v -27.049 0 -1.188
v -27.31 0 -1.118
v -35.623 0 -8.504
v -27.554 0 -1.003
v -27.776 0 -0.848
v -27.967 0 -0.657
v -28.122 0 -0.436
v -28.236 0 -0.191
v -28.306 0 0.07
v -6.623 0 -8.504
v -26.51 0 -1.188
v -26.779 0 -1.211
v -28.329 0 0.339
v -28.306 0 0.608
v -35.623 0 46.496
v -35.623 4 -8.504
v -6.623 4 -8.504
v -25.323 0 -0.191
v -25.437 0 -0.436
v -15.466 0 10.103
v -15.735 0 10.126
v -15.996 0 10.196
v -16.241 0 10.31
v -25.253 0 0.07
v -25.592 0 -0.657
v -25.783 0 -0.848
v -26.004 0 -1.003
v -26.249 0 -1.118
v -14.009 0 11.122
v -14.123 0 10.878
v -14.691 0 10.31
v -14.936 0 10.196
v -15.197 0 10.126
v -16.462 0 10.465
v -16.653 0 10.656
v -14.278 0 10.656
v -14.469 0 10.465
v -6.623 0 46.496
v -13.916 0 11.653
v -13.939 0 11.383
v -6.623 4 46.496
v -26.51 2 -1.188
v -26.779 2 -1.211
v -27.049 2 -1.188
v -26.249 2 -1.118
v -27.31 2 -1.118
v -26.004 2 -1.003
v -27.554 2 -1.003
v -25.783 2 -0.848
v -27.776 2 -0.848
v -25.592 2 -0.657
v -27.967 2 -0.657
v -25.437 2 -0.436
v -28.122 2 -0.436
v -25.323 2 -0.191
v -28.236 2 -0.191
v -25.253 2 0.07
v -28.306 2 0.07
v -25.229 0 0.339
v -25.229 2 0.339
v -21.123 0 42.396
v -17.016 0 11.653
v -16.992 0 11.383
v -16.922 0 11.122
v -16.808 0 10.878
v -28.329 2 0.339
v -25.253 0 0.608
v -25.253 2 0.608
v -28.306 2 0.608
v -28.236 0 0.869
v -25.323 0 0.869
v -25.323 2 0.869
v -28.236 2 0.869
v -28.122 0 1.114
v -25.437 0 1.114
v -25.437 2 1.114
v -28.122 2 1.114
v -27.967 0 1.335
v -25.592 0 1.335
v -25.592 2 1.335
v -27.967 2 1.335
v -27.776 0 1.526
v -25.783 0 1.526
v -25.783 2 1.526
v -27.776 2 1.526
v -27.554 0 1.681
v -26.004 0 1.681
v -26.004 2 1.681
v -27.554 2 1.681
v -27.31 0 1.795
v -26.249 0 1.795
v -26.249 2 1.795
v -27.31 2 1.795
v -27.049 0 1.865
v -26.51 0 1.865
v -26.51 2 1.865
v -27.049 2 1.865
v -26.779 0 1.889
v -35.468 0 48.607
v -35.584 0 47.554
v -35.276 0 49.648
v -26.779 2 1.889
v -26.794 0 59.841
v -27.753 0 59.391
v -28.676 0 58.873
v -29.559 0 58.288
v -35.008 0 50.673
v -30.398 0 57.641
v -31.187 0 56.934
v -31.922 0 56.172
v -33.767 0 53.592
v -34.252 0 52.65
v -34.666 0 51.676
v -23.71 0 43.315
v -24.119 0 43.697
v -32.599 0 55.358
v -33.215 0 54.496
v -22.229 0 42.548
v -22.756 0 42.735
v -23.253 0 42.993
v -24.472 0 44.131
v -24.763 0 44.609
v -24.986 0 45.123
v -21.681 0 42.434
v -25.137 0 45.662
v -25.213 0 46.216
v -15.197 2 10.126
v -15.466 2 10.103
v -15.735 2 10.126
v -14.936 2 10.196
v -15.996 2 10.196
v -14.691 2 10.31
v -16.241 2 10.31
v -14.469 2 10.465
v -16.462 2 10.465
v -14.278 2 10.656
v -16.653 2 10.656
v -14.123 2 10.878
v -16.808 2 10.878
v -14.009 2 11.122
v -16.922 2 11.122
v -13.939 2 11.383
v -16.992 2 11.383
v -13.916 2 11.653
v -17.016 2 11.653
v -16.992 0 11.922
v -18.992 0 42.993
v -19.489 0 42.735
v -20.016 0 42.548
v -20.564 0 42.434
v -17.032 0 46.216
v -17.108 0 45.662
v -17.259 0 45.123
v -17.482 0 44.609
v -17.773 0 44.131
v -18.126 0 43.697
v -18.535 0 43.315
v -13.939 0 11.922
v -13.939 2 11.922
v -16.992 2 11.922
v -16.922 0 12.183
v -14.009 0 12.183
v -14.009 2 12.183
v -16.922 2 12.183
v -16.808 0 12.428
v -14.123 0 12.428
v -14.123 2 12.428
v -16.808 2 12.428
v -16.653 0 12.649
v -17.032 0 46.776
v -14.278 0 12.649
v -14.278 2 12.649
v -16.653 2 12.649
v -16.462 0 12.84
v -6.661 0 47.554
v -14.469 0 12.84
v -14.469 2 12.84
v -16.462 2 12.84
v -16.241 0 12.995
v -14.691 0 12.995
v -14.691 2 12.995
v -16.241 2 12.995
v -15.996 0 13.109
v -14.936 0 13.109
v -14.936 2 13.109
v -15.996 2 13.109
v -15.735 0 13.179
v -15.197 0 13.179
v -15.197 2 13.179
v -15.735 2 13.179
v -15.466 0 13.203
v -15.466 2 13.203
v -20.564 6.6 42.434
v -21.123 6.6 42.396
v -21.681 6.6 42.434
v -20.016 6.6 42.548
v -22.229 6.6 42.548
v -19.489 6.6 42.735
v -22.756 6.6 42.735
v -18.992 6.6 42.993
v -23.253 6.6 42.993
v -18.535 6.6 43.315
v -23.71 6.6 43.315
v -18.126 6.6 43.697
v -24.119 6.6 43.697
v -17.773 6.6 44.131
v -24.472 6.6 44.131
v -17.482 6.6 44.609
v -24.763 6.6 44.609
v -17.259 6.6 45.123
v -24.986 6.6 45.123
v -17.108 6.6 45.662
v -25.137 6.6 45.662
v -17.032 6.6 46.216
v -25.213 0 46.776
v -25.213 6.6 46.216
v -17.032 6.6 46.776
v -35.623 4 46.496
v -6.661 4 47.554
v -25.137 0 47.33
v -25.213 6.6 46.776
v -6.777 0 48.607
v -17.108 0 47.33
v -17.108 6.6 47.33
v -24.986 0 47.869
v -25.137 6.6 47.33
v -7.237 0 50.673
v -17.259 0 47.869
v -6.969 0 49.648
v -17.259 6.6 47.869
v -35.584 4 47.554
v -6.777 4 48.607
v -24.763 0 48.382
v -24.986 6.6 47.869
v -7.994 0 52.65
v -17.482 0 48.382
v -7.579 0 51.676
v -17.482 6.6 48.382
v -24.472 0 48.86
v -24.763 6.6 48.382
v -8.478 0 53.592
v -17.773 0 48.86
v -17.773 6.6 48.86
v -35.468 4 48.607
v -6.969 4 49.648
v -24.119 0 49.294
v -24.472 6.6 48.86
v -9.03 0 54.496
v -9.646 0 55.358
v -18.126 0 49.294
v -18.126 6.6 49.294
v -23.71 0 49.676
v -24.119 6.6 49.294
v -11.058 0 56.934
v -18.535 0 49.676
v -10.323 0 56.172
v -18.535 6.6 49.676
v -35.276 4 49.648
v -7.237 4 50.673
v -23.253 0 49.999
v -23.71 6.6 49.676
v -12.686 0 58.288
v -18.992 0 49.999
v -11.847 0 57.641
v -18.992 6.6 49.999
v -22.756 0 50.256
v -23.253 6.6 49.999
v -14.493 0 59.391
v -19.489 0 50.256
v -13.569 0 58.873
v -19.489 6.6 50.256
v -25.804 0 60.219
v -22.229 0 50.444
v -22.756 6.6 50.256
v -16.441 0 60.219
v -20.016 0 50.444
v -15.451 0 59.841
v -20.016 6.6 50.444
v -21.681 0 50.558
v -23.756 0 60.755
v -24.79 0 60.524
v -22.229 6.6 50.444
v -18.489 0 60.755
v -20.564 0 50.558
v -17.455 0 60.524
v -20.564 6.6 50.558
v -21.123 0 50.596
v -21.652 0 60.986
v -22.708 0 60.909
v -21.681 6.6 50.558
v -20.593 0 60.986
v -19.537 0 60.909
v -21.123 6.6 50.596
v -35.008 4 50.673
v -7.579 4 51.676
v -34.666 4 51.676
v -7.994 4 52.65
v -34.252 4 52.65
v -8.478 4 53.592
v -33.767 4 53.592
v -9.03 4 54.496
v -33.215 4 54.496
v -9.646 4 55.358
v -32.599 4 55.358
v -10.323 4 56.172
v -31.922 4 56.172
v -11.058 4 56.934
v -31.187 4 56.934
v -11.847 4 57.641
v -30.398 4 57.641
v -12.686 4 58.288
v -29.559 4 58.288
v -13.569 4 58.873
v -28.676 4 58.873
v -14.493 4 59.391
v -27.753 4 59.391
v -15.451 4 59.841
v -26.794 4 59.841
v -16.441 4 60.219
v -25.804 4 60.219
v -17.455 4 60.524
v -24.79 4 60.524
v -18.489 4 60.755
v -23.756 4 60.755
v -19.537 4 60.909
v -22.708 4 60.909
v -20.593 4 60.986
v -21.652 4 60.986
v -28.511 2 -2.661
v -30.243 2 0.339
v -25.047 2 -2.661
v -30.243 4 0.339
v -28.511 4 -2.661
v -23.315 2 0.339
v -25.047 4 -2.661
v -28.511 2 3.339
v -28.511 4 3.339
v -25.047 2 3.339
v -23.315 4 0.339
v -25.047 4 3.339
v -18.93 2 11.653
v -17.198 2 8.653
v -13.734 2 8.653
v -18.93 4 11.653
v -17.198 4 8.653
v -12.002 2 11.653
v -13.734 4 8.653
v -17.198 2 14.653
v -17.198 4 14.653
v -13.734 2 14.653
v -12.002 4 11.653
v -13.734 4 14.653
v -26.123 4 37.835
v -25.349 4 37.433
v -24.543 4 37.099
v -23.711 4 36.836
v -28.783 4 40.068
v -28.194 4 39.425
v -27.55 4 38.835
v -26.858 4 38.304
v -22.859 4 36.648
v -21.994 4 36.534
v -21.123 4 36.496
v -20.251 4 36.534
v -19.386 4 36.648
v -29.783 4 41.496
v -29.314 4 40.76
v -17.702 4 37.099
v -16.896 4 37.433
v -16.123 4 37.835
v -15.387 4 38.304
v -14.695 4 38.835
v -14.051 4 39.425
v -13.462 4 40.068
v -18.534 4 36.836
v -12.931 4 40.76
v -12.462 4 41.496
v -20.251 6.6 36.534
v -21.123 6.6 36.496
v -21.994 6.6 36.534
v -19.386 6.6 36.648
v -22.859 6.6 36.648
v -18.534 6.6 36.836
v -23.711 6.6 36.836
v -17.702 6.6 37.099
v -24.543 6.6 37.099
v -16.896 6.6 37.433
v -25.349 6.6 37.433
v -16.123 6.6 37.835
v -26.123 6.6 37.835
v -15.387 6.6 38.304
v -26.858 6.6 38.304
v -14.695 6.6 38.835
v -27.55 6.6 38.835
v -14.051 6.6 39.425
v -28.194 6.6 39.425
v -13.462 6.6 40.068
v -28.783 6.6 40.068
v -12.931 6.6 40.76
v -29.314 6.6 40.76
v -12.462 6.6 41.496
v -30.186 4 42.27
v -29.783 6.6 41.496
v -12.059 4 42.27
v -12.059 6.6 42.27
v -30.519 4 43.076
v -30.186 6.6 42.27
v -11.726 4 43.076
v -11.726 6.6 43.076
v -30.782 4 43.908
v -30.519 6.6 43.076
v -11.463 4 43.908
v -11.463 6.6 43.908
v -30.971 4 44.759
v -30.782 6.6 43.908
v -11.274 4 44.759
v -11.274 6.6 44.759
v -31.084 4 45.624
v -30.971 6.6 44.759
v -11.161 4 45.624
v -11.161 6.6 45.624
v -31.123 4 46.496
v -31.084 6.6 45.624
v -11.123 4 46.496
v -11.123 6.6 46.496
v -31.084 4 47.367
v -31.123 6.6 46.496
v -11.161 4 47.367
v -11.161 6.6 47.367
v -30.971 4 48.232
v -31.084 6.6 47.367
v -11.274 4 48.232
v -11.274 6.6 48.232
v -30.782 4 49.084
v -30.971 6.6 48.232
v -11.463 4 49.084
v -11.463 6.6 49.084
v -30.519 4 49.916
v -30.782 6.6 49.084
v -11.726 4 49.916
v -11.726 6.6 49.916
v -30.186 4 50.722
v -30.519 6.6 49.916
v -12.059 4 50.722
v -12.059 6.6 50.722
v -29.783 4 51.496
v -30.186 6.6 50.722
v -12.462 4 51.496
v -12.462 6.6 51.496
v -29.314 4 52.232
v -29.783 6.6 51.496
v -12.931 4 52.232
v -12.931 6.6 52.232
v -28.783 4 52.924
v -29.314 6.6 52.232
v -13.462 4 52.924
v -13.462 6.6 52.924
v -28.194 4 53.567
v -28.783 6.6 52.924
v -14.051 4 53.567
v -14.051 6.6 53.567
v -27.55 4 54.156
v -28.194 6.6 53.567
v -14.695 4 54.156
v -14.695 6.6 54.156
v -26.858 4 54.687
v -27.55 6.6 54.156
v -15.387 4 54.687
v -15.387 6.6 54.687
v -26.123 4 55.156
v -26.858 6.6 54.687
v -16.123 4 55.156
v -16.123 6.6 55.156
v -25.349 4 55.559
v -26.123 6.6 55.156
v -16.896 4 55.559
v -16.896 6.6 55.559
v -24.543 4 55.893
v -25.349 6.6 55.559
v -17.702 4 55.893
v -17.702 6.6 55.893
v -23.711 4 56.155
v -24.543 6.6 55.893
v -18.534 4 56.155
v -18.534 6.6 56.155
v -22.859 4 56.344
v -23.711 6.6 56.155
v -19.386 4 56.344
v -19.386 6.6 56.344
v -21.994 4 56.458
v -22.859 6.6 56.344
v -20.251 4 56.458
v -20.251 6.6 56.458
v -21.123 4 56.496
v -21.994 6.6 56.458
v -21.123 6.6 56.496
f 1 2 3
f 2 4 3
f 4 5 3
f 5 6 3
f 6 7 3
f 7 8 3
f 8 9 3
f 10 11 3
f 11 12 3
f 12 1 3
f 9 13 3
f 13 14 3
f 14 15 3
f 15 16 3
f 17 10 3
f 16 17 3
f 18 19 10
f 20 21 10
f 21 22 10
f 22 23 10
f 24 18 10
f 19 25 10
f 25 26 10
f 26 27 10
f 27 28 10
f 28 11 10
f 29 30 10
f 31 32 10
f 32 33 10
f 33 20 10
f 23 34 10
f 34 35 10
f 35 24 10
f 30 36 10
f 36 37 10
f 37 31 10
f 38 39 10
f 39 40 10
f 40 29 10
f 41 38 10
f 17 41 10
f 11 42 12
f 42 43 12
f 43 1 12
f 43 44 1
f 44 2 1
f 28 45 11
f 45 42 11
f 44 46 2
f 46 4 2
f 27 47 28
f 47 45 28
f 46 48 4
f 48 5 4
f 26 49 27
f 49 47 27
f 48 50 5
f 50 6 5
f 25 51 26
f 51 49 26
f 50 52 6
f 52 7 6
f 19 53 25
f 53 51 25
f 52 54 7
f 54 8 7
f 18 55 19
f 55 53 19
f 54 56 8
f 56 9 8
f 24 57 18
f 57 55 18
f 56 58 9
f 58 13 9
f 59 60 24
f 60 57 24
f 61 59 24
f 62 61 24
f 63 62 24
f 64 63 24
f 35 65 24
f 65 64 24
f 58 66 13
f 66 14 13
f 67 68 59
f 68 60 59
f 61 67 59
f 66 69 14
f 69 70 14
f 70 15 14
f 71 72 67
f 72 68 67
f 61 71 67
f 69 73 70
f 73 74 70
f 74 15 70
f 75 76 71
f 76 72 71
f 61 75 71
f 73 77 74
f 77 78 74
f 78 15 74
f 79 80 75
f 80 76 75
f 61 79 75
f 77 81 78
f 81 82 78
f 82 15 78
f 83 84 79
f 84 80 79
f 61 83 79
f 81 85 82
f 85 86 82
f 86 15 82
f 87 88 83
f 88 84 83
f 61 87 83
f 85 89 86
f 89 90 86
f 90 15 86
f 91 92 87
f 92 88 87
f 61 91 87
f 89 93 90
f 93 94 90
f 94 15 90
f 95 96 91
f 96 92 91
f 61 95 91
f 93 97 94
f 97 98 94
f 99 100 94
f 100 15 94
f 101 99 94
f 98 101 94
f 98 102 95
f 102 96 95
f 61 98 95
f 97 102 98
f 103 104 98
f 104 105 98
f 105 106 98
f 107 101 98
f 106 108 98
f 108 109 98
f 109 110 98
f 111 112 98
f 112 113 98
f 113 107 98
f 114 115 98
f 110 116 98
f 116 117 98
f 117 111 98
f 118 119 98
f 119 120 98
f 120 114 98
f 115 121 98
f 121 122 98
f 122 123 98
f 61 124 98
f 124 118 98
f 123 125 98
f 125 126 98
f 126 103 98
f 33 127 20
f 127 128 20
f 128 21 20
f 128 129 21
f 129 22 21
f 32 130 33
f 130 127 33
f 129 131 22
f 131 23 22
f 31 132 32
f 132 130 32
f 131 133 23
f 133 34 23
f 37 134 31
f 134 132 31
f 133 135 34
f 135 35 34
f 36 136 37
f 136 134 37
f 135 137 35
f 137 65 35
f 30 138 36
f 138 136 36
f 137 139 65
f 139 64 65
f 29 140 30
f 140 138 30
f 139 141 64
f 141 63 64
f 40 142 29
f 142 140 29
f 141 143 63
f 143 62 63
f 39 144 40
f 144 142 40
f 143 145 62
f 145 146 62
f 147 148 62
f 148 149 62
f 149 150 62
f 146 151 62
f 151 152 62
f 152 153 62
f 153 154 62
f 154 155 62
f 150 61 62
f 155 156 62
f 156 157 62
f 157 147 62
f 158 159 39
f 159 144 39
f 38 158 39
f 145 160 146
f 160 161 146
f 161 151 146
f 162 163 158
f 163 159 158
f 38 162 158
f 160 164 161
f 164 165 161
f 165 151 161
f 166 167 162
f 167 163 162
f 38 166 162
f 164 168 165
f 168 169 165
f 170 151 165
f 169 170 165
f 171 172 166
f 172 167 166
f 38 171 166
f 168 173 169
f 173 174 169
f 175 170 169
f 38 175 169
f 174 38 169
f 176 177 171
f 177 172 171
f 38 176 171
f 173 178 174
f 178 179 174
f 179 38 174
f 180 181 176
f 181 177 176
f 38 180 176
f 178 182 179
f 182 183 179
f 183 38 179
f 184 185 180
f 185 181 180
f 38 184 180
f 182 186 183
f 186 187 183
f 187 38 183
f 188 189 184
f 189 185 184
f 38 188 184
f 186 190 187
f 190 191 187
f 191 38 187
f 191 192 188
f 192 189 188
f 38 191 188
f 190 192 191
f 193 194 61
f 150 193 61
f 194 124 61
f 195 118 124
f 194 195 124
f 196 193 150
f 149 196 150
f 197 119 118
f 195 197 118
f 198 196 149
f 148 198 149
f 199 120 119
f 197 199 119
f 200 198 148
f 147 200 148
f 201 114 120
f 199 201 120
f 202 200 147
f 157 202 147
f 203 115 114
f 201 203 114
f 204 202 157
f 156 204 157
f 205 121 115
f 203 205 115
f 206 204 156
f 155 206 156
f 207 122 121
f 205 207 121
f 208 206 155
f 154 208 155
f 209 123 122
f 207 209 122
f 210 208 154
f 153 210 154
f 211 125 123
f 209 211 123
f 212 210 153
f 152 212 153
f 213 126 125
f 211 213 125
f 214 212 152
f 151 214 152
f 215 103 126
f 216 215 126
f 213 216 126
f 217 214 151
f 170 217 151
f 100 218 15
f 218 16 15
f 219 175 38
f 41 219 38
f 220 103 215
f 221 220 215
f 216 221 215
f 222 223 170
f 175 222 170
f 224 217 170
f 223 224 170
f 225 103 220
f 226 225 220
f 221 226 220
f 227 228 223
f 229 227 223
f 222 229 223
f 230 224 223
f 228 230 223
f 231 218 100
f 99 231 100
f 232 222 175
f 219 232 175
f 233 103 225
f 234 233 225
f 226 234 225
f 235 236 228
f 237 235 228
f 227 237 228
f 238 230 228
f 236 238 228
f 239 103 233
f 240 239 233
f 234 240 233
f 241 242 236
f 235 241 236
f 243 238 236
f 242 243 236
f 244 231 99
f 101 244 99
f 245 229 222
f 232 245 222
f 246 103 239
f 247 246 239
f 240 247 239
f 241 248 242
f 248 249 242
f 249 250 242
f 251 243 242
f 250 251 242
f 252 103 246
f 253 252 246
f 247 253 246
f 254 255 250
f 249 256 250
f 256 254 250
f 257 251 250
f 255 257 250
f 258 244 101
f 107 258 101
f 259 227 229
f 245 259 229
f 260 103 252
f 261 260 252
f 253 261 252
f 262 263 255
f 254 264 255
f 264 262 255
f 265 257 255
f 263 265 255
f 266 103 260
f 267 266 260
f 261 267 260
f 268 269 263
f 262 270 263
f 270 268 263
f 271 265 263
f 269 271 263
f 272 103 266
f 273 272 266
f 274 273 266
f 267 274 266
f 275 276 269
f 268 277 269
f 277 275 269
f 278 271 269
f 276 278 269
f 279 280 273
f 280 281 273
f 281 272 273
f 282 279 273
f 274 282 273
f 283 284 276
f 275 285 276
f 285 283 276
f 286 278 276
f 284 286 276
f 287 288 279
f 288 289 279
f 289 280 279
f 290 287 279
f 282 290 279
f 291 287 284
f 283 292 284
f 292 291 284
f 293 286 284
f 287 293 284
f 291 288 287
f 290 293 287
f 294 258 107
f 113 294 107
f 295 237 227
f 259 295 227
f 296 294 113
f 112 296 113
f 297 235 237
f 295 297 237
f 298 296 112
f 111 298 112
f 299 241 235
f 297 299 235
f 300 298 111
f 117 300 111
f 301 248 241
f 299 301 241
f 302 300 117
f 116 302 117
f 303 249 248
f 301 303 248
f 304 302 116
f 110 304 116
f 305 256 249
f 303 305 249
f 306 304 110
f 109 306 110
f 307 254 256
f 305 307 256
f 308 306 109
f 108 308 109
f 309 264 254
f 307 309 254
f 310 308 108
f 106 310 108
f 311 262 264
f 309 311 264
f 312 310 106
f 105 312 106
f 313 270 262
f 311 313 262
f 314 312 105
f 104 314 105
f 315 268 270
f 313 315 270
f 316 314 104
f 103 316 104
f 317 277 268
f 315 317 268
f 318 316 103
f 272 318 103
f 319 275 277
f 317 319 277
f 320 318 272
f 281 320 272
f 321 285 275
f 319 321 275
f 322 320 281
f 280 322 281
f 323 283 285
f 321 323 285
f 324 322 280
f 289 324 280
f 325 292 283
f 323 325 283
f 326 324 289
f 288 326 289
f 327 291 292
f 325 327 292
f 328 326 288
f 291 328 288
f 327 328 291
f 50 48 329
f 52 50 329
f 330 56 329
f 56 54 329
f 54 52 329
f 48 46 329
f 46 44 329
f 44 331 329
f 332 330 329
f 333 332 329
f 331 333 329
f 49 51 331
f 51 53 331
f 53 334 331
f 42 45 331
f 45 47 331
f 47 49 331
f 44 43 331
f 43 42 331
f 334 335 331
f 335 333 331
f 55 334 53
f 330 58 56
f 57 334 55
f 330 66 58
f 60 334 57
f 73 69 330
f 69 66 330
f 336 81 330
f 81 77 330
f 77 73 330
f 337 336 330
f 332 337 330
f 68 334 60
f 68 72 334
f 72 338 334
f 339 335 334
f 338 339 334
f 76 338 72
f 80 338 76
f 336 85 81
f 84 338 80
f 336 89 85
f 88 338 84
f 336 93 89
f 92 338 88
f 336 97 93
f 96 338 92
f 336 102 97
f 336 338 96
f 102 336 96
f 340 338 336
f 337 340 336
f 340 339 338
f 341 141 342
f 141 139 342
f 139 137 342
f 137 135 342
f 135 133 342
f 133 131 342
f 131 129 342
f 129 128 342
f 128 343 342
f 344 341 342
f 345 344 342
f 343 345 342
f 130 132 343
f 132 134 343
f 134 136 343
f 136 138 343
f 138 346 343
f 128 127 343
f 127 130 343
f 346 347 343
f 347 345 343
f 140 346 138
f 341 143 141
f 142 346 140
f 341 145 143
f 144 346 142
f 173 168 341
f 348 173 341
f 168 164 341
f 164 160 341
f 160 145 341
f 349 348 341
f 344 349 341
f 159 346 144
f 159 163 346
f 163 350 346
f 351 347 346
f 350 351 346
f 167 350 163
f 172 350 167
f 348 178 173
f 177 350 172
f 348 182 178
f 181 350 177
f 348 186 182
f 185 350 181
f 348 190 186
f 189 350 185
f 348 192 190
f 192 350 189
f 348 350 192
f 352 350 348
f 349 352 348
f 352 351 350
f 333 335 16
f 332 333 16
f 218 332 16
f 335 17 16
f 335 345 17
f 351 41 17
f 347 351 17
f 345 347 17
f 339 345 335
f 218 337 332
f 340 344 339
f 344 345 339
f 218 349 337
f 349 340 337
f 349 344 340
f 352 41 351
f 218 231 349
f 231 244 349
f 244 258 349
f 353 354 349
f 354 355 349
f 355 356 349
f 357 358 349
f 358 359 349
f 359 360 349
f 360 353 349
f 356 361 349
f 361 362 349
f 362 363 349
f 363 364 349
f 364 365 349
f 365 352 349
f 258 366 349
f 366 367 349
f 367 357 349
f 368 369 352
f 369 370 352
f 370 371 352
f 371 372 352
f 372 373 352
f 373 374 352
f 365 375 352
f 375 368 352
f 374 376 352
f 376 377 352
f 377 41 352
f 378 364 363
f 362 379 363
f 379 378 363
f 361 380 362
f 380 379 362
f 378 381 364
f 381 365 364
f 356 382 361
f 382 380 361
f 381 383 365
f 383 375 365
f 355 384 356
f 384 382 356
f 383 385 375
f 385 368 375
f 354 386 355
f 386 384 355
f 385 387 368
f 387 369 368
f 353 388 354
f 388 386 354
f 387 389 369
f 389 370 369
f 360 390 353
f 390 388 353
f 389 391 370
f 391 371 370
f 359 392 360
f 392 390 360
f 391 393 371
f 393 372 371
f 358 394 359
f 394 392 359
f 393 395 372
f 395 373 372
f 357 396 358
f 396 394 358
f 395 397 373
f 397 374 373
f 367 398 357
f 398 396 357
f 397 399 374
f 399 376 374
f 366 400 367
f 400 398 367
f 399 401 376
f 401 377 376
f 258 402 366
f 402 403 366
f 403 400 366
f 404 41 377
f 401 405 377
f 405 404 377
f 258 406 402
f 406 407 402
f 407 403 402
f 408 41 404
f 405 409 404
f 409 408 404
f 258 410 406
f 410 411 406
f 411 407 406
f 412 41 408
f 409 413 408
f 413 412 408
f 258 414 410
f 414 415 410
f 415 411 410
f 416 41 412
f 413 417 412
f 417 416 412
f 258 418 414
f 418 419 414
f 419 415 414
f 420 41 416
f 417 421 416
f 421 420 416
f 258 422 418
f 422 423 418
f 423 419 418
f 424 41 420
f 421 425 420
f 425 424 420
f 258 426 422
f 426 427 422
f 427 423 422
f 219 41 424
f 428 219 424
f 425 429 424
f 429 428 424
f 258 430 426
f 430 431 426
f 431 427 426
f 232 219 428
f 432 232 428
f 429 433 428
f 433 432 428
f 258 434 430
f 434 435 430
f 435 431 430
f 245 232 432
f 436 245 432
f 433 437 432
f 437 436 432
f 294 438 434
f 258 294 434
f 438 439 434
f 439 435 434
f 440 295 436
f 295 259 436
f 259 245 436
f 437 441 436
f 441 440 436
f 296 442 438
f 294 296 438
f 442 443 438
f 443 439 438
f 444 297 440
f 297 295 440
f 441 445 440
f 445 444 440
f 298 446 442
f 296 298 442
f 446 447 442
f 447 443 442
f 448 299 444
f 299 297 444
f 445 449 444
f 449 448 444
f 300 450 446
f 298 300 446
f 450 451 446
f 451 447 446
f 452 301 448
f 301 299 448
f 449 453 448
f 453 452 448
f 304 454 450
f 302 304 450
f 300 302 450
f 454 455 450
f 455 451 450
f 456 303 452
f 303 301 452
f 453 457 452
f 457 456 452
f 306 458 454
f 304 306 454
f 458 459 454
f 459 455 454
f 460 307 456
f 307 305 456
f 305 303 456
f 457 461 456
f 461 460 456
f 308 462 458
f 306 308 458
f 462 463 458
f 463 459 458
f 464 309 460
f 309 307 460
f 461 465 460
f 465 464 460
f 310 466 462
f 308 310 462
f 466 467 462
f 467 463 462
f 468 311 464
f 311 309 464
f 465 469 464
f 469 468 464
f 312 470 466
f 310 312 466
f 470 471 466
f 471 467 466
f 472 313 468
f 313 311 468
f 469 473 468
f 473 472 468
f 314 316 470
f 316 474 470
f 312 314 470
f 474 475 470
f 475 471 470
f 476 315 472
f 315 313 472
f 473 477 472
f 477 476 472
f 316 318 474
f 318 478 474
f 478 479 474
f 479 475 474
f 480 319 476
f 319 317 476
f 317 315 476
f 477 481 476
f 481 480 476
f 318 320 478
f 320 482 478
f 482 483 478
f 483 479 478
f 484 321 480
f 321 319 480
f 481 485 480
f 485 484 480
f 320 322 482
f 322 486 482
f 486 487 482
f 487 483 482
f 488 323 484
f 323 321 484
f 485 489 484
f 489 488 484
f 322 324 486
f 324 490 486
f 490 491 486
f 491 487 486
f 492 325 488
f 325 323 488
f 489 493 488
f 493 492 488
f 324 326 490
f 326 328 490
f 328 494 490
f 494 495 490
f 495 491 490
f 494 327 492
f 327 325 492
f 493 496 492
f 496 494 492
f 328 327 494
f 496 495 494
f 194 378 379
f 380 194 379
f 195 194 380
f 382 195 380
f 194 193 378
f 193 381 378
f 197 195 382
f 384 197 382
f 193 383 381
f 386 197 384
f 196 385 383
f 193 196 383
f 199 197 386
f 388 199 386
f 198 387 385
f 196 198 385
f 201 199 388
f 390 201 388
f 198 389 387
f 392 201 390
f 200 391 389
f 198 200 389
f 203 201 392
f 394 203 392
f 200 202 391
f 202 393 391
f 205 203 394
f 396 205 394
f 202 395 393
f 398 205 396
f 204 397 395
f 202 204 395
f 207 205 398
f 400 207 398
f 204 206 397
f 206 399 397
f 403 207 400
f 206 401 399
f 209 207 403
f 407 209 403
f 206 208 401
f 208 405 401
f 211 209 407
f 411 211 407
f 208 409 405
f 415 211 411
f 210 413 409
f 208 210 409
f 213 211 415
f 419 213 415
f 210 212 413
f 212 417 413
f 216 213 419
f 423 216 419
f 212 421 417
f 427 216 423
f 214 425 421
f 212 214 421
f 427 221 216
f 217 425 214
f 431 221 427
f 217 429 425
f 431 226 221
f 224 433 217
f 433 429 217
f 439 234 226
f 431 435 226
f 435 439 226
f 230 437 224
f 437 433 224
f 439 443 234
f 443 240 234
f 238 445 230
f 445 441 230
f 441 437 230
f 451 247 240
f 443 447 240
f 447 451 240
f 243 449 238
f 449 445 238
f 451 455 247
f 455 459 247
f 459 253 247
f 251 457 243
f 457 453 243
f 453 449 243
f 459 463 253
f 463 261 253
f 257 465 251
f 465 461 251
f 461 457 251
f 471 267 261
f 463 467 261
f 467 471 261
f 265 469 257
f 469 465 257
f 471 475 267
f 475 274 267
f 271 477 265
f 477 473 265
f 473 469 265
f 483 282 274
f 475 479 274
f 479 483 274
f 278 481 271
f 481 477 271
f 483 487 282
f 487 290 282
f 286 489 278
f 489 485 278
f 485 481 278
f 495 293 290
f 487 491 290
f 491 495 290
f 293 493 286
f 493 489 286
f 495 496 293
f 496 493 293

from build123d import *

# Parameters (mm, degrees)
SKETCH1_W           = 50
SKETCH1_H           = 50
BOSS_EXTRUDE1_DEPTH = 4
SKETCH2_R           = 4.1
CUT_EXTRUDE1_DEPTH  = 4
SKETCH5_R           = 10
SKETCH5_R_2         = 4.1
BOSS_EXTRUDE4_DEPTH = 2.6
SKETCH6_OUTSIDE_W   = 66.204
SKETCH6_OUTSIDE_H   = 66.204
CUT_EXTRUDE3_DEPTH  = 4
SKETCH7_W           = 29
SKETCH7_H           = 4
BOSS_EXTRUDE5_DEPTH = 30
SKETCH8_R           = 1.55
CUT_EXTRUDE4_DEPTH  = 4
CUT_EXTRUDE5_DEPTH  = 2


with BuildPart() as part:
    # Sketch1 → Boss-Extrude1 (new body)
    with BuildSketch(Plane(origin=(0, 0, 0), x_dir=(1, 0, 0), z_dir=(0, 1, 0))):
        with Locations((-21.122518296, -46.495755178)):
            Rectangle(SKETCH1_W, SKETCH1_H)
    extrude(amount=BOSS_EXTRUDE1_DEPTH)

    # Sketch2 → Cut-Extrude1 (cut)
    with BuildSketch(Plane.XZ):
        with Locations(Location((-21.122518296, 46.495755178, 0), (0, 0, 270))):
            Circle(SKETCH2_R)
    extrude(amount=-CUT_EXTRUDE1_DEPTH, mode=Mode.SUBTRACT)

    # Sketch5 → Boss-Extrude4 (add)
    with BuildSketch(Plane(origin=(0, 4, 0), x_dir=(1, 0, 0), z_dir=(0, 1, 0))):
        with Locations(Location((-21.122518296, -46.495755178, 0), (0, 0, 270))):
            Circle(SKETCH5_R)
        with Locations(Location((-21.122518296, -46.495755178, 0), (0, 0, 90))):
            Circle(SKETCH5_R_2, mode=Mode.SUBTRACT)
    extrude(amount=BOSS_EXTRUDE4_DEPTH)

    # Sketch6 outside → Cut-Extrude3 (cut)
    with BuildSketch(Plane.XZ):
        with Locations((-21.123, 46.496)):
            Rectangle(SKETCH6_OUTSIDE_W, SKETCH6_OUTSIDE_H)
        with BuildLine():
            Line((-35.622518296, 46.495755178), (-35.622518296, 21.495755178))
            Line((-35.622518296, 21.495755178), (-6.622518296, 21.495755178))
            Line((-6.622518296, 21.495755178), (-6.622518296, 46.495755178))
            ThreePointArc((-6.622518296, 46.495755178), (-21.122518296, 60.995755178), (-35.622518296, 46.495755178))
        make_face(mode=Mode.SUBTRACT)
    extrude(amount=-CUT_EXTRUDE3_DEPTH, mode=Mode.SUBTRACT)

    # Sketch7 → Boss-Extrude5 (add)
    with BuildSketch(Plane(origin=(0, 0, 21.495755178), x_dir=(-1, 0, 0), z_dir=(0, 0, -1))):
        with Locations((21.122518296, 2)):
            Rectangle(SKETCH7_W, SKETCH7_H)
    extrude(amount=BOSS_EXTRUDE5_DEPTH)

    # Sketch8 → Cut-Extrude4 (cut)
    with BuildSketch(Plane(origin=(0, 4, 0), x_dir=(1, 0, 0), z_dir=(0, 1, 0))):
        with Locations(Location((-26.779372546, -0.338900928, 0), (0, 0, 270))):
            Circle(SKETCH8_R)
        with Locations(Location((-15.465664047, -11.652609427, 0), (0, 0, 270))):
            Circle(SKETCH8_R)
    extrude(amount=-CUT_EXTRUDE4_DEPTH, mode=Mode.SUBTRACT)

    # Sketch9 → Cut-Extrude5 (cut)
    with BuildSketch(Plane(origin=(0, 4, 0), x_dir=(1, 0, 0), z_dir=(0, 1, 0))):
        Polygon((-25.047321738, 2.661099072), (-28.511423353, 2.661099072), (-30.243474161, -0.338900928), (-28.511423353, -3.338900928), (-25.047321738, -3.338900928), (-23.315270931, -0.338900928), align=None)
        Polygon((-13.733613239, -8.652609427), (-17.197714854, -8.652609427), (-18.929765662, -11.652609427), (-17.197714854, -14.652609427), (-13.733613239, -14.652609427), (-12.001562432, -11.652609427), align=None)
    extrude(amount=-CUT_EXTRUDE5_DEPTH, mode=Mode.SUBTRACT)


solid = part.part
